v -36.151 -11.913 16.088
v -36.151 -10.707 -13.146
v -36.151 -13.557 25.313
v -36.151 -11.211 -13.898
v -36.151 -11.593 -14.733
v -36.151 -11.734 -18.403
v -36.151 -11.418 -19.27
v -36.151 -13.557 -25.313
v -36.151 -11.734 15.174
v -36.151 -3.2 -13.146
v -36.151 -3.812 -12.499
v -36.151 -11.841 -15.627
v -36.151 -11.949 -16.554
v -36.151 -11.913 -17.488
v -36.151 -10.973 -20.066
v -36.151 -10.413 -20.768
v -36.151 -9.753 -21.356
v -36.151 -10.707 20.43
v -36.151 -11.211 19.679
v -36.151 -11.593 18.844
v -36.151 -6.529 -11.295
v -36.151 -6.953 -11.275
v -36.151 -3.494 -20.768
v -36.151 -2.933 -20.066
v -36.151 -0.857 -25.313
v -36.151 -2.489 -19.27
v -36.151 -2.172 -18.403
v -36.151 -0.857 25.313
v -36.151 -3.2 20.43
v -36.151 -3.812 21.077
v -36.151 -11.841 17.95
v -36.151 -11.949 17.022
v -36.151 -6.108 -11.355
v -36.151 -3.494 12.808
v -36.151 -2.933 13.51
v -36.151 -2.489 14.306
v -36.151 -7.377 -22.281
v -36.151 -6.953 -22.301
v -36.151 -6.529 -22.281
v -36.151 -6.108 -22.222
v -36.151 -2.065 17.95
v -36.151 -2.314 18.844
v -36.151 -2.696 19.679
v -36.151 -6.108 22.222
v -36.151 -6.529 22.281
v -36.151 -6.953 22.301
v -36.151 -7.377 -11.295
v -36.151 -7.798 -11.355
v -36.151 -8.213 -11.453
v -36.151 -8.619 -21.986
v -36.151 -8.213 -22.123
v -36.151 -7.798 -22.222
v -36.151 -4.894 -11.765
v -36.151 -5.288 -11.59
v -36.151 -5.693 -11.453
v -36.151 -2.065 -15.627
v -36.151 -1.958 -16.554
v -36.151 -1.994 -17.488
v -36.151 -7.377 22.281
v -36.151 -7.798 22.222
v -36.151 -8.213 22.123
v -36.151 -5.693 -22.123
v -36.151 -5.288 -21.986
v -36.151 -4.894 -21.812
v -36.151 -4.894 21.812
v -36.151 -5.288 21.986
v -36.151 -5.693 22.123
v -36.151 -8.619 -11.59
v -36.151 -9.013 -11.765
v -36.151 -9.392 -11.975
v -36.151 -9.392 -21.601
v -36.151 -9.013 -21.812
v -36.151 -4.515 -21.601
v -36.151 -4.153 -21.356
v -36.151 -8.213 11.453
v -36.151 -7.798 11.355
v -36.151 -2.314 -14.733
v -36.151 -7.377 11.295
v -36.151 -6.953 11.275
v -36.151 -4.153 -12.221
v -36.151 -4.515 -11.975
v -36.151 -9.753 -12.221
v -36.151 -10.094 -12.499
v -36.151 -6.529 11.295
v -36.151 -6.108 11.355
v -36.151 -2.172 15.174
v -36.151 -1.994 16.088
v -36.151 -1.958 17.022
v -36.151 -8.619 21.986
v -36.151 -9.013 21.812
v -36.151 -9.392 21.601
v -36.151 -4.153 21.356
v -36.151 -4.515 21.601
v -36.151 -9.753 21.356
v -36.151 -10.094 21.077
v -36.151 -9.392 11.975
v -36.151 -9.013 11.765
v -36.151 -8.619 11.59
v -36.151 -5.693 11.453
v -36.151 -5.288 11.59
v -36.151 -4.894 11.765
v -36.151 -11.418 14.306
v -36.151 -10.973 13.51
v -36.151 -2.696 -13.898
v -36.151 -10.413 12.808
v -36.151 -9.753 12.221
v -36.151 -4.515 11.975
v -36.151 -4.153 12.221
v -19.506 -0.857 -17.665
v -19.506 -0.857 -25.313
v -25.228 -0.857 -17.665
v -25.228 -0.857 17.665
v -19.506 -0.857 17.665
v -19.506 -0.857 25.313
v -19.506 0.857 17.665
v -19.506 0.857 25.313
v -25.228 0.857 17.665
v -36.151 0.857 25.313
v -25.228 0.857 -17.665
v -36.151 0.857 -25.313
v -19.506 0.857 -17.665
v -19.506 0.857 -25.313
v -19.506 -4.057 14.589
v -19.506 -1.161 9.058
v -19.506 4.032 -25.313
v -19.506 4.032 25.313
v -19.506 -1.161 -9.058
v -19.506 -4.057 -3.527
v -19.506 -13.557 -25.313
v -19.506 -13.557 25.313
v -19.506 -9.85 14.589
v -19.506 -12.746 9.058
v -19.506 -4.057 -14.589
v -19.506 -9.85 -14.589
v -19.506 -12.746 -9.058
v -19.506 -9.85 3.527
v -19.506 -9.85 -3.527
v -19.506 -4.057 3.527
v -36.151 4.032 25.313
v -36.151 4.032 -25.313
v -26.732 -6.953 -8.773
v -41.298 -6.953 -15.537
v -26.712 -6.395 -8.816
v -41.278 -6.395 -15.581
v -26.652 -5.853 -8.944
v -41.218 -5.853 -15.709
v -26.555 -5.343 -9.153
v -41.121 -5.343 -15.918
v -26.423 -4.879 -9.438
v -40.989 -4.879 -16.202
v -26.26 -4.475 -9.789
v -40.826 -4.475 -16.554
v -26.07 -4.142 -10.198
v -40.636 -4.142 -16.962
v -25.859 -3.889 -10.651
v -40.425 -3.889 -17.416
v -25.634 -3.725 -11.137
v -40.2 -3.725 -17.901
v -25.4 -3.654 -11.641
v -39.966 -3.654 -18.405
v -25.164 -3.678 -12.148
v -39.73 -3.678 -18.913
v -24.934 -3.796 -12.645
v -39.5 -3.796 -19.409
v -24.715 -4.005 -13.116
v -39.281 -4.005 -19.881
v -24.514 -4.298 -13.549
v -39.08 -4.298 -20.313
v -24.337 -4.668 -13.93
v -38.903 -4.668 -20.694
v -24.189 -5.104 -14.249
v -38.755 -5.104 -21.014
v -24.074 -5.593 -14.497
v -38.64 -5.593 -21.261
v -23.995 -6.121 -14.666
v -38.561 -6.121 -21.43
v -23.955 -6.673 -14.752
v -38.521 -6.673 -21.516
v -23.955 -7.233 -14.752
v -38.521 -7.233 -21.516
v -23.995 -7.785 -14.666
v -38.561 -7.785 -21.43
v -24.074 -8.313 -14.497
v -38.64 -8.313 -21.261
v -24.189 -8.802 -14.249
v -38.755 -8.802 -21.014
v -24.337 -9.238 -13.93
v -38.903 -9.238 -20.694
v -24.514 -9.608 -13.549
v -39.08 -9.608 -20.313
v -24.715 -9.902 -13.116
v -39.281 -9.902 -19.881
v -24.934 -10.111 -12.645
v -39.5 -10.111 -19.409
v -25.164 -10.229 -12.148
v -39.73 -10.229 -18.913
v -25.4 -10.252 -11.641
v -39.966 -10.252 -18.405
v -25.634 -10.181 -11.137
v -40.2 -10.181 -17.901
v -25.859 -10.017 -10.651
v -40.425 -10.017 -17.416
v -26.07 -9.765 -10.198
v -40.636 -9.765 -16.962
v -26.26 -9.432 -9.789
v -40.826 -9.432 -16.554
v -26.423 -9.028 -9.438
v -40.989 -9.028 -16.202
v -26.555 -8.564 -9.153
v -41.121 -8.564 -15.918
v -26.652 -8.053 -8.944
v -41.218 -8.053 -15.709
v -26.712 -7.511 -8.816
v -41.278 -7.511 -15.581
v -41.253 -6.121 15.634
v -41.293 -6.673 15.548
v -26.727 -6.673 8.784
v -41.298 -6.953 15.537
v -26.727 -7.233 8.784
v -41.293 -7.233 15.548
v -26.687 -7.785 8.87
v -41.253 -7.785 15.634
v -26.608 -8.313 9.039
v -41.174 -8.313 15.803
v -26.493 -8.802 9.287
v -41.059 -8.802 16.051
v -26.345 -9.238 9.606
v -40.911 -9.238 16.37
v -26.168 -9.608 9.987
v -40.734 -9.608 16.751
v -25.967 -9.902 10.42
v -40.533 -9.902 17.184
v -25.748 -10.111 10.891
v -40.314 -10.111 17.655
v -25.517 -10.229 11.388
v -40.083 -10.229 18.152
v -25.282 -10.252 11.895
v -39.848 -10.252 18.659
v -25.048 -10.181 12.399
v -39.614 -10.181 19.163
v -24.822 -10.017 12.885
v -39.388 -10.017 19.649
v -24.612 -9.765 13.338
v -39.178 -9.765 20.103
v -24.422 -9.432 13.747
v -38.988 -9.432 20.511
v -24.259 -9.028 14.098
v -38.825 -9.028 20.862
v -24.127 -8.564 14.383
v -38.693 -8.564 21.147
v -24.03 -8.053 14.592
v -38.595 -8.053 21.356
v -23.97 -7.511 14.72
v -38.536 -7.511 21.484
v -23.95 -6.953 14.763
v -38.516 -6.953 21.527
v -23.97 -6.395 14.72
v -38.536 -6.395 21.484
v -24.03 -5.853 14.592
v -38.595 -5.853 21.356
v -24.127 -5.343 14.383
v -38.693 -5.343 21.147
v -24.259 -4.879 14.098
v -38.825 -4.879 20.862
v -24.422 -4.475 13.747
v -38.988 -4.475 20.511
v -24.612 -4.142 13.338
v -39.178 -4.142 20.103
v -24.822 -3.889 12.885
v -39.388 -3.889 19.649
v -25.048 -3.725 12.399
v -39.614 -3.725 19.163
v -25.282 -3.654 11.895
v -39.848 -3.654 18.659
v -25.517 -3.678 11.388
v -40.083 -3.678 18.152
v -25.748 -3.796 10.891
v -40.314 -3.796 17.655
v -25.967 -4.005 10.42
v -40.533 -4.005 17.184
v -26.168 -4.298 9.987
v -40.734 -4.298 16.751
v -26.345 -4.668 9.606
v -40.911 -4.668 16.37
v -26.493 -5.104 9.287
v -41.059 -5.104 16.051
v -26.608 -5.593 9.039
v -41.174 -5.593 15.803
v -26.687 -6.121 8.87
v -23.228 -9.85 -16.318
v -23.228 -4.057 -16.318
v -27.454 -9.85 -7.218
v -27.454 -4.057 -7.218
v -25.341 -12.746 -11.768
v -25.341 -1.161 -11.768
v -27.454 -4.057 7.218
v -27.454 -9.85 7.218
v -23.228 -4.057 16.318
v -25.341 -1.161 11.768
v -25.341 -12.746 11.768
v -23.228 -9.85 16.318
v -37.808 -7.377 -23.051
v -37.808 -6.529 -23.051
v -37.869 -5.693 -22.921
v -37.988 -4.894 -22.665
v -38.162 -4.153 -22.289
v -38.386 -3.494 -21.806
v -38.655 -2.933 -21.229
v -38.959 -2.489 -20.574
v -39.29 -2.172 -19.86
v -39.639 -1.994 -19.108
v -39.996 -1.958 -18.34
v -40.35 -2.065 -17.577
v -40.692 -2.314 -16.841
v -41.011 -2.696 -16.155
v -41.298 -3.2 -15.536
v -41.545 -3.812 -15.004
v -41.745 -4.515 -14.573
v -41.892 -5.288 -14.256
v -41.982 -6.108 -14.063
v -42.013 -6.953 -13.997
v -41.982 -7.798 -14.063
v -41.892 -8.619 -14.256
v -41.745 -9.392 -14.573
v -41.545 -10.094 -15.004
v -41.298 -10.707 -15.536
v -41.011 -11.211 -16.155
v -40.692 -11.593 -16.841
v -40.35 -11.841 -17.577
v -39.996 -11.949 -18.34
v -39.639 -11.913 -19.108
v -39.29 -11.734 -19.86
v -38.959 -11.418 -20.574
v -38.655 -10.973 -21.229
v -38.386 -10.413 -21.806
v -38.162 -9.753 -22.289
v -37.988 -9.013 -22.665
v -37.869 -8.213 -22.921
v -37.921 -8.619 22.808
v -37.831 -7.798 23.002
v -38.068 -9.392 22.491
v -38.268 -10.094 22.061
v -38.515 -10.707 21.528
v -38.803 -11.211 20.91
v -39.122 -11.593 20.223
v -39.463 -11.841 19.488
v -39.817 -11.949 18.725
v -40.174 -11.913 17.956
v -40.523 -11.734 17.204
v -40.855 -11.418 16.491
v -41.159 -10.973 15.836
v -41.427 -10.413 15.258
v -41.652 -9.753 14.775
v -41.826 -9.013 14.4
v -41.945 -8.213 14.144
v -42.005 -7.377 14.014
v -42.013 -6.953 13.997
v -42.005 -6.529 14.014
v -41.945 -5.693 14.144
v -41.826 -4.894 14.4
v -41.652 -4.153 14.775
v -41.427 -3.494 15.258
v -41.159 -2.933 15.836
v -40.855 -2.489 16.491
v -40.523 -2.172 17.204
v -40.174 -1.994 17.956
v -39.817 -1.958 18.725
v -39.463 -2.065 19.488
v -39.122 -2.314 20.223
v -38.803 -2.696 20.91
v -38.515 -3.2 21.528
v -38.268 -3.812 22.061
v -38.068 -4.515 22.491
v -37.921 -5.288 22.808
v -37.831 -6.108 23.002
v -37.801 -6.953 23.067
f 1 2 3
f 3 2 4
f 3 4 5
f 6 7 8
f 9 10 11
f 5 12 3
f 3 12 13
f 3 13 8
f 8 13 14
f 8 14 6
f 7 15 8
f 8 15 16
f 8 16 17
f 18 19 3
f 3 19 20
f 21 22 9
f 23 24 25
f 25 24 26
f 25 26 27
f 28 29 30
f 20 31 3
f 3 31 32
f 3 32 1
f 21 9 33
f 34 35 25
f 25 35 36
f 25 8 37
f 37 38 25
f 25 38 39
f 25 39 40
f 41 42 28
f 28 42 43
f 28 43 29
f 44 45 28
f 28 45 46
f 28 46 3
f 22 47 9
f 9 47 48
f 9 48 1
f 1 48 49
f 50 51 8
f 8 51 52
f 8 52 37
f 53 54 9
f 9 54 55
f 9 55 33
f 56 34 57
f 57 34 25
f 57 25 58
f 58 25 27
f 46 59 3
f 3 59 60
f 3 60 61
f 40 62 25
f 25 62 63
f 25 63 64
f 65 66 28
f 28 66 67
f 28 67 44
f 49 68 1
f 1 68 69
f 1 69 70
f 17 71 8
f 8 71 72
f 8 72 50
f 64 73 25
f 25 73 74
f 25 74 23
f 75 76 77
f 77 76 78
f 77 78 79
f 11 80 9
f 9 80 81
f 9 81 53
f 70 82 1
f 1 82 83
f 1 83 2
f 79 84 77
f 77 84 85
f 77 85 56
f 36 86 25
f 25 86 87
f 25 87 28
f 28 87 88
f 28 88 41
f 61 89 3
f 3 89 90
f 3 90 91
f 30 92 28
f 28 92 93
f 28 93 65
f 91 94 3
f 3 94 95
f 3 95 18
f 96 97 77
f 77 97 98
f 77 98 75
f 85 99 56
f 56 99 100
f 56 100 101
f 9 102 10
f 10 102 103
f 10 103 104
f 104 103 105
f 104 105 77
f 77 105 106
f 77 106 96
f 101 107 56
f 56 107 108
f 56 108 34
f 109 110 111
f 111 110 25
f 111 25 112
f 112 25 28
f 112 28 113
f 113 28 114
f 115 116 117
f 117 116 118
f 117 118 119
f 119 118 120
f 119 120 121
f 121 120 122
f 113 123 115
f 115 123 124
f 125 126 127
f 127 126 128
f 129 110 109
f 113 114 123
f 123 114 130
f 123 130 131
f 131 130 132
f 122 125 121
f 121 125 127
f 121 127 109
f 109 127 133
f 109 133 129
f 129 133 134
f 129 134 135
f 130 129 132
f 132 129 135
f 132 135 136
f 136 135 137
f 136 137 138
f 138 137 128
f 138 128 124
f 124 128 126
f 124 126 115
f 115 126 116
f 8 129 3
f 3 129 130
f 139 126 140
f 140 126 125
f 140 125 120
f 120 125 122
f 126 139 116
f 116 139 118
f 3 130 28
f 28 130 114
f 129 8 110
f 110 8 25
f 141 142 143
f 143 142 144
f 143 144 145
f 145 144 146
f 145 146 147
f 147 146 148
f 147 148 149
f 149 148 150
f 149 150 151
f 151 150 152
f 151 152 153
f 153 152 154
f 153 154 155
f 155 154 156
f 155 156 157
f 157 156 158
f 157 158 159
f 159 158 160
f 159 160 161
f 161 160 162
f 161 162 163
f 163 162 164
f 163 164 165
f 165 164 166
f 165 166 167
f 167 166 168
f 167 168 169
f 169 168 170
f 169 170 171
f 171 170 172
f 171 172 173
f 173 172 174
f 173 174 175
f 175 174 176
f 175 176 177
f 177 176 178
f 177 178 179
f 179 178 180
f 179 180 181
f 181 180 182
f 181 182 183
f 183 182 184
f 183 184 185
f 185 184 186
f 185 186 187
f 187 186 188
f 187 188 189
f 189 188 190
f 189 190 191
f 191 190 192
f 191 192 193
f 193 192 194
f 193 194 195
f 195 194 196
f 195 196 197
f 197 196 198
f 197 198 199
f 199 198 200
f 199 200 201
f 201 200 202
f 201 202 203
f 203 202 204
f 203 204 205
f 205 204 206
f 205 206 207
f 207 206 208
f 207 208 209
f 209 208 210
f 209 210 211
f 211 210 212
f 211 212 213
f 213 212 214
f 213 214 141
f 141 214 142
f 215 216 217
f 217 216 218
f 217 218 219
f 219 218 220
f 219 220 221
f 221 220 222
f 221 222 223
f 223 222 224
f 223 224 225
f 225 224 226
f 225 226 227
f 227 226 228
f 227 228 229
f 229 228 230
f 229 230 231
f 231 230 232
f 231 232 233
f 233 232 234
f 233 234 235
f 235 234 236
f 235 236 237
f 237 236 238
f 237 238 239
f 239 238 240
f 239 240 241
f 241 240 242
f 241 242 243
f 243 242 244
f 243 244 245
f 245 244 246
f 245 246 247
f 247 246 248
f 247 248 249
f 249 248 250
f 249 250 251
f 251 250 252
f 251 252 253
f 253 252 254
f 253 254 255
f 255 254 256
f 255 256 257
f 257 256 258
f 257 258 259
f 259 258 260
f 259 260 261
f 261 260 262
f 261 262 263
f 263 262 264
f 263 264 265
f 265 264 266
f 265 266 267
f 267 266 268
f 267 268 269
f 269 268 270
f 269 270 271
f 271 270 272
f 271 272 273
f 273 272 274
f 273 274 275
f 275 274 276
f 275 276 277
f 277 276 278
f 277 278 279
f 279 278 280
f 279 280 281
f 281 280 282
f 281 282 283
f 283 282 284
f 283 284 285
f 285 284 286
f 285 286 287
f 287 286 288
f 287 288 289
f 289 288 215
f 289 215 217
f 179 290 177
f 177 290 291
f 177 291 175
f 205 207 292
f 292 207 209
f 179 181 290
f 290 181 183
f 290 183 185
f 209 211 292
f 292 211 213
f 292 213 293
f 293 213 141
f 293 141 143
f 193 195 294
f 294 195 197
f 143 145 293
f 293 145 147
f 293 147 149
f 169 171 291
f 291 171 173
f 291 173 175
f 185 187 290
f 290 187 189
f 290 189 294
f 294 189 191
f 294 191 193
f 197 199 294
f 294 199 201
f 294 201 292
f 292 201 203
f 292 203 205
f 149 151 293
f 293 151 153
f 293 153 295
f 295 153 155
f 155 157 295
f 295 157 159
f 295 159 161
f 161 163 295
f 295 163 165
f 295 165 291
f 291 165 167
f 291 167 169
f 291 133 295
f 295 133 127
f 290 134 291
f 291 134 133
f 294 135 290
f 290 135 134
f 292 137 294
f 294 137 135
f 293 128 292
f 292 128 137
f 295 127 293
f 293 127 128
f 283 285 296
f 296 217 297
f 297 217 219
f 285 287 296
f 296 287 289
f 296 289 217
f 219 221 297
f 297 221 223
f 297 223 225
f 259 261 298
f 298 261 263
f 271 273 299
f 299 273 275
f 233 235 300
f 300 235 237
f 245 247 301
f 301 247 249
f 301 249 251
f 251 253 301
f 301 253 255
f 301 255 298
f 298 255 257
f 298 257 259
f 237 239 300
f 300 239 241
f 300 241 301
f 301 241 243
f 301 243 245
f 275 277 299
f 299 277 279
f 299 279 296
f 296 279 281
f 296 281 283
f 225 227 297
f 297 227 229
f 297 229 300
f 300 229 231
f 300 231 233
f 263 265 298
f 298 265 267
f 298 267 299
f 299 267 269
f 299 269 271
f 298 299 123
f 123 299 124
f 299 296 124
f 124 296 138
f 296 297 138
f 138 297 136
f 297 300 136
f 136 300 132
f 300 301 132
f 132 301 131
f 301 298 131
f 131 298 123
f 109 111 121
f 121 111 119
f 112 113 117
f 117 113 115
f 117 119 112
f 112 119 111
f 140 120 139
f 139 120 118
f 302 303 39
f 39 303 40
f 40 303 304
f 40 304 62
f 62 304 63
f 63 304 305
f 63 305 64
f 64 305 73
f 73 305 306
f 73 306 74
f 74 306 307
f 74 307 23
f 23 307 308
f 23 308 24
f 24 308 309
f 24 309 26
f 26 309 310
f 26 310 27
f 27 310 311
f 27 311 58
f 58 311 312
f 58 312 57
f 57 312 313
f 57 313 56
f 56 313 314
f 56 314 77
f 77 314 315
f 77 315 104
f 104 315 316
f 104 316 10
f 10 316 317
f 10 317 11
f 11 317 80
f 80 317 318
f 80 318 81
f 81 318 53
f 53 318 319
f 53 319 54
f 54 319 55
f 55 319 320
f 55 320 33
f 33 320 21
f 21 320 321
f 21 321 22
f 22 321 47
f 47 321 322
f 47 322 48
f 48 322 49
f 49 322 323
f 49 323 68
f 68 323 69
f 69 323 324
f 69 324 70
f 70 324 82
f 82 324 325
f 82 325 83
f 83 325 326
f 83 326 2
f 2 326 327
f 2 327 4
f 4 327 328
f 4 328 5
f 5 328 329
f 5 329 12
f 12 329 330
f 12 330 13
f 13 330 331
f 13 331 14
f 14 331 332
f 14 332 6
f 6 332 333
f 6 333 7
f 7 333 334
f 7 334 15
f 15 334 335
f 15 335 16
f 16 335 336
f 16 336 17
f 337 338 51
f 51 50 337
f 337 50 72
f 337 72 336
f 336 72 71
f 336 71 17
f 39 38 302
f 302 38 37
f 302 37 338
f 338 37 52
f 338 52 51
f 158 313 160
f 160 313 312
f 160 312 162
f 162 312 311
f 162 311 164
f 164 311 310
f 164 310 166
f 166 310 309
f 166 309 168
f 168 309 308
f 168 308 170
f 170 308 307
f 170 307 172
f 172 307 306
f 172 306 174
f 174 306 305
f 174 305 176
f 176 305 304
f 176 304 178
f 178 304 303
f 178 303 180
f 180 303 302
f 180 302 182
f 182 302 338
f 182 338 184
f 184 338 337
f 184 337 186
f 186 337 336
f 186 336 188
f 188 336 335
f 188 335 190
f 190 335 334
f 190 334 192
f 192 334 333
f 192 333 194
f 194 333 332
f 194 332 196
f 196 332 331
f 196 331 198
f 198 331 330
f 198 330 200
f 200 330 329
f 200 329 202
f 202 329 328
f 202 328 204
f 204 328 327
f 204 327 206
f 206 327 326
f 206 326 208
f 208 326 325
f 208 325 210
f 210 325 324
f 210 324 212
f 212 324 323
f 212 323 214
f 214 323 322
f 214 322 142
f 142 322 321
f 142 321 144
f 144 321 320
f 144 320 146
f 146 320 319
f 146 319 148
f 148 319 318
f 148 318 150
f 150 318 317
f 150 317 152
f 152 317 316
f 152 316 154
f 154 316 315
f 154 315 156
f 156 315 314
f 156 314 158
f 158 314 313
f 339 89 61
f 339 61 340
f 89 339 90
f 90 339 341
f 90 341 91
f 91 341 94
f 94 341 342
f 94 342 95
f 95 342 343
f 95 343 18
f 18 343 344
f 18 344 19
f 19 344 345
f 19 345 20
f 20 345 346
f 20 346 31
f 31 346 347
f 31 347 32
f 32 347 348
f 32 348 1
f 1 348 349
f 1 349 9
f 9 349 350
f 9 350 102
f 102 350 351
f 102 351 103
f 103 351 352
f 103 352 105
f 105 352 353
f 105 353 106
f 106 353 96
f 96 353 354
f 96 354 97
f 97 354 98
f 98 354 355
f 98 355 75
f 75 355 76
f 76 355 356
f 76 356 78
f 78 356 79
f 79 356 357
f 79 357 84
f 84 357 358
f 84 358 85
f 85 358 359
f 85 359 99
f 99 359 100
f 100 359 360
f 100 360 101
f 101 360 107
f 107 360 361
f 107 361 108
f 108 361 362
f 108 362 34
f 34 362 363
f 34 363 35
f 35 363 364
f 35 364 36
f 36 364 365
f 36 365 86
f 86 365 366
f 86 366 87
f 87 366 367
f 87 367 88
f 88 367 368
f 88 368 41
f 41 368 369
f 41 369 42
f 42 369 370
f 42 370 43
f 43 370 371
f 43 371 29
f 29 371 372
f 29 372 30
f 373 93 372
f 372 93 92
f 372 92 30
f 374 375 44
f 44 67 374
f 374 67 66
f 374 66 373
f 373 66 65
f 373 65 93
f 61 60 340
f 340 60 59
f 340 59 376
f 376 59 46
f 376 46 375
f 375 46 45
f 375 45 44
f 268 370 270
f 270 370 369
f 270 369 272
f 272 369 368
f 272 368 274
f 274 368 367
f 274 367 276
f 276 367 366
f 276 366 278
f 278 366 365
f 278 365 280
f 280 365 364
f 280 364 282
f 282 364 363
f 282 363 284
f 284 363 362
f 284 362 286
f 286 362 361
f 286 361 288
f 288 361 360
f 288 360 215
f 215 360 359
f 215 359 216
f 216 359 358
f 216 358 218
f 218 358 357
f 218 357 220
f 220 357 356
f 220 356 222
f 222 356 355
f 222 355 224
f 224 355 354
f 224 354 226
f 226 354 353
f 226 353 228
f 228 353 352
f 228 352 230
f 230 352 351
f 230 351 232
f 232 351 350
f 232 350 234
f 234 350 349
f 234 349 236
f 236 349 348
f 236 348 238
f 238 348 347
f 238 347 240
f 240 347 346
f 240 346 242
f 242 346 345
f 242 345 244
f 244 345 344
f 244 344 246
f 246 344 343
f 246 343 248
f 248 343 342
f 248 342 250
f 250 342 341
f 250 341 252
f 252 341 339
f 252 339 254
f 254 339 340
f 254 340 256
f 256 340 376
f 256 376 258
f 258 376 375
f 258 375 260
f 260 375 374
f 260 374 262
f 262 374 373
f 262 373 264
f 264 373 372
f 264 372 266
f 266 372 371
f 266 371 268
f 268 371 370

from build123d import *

# Parameters (mm, degrees)
REVOLVE1_ANGLE       = 70
BOSS_EXTRUDE1_START  = -17.5895
BOSS_EXTRUDE1_DEPTH  = 17.5895
BOSS_EXTRUDE2_DEPTH  = 3.175
BOSS_EXTRUDE3_DEPTH  = 12.7
CUT_SWEEP1_PROFILE_R = 3.302
CUT_EXTRUDE7_DEPTH   = 27.94
BOSS_EXTRUDE4_REACH  = 54.438
CUT_EXTRUDE8_DEPTH   = 1.7145
CUT_EXTRUDE9_DEPTH   = 54.83153704
BOSS_EXTRUDE5_REACH  = 52.224
SKETCH45_R           = 5
SKETCH45_R_2         = 3.302


with BuildPart() as part:
    # Sketch3 → Revolve1 (revolve, symmetric)
    with BuildSketch(Plane.XY) as revolve1_sk:
        Polygon((-44.1325, 4.03225), (-23.8125, 4.03225), (-23.8125, -13.55725), (-44.1325, -13.55725), (-44.1325, -0.85725), (-30.7975, -0.85725), (-30.7975, 0.85725), (-44.1325, 0.85725), align=None)
    revolve(axis=Axis((0, -1086.549659172, 0), (0, 1, 0)), revolution_arc=REVOLVE1_ANGLE / 2)
    revolve(revolve1_sk.sketch, axis=Axis((0, -1086.549659172, 0), (0, -1, 0)), revolution_arc=REVOLVE1_ANGLE / 2)

    # Sketch10 → Boss-Extrude1 (add)
    with BuildSketch(Plane(origin=(0, 4.03225, 0), x_dir=(1, 0, 0), z_dir=(0, 1, 0)).offset(BOSS_EXTRUDE1_START)):
        with BuildLine():
            Line((-19.506058055, 13.658288891), (-19.506058055, -13.658288891))
            ThreePointArc((-19.506058055, -13.658288891), (-23.8125, 0), (-19.506058055, 13.658288891))
        make_face()
    extrude(amount=BOSS_EXTRUDE1_DEPTH)

    # Sketch11 → Boss-Extrude2 (add)
    with BuildSketch(Plane(origin=(0, 4.03225, 0), x_dir=(1, 0, 0), z_dir=(0, 1, 0))):
        Polygon((-36.151227595, 25.313362077), (-19.506058055, 25.313362077), (-19.506058055, 13.658288891), align=None)
        Polygon((-36.151227595, -25.313362077), (-19.506058055, -25.313362077), (-19.506058055, -13.658288891), align=None)
    extrude(amount=-BOSS_EXTRUDE2_DEPTH)

    # Sketch12 → Boss-Extrude3 (add)
    with BuildSketch(Plane.XZ.offset(13.55725)):
        Polygon((-36.151227595, 25.313362077), (-19.506058055, 25.313362077), (-19.506058055, 13.658288891), align=None)
        Polygon((-36.151227595, -25.313362077), (-19.506058055, -13.658288891), (-19.506058055, -25.313362077), align=None)
    extrude(amount=-BOSS_EXTRUDE3_DEPTH)

    # Cut-Sweep1: sweep along a path in Sketch14
    with BuildLine(Plane(origin=(0, -6.95325, 0), x_dir=(-1, 0, 0), z_dir=(0, -1, 0))) as cut_sweep1_path:
        Line((9.675589129, 4.493239256), (40.02699074, 18.588102876))
    # Cut-Sweep1 profile (on start of the path) → Cut-Sweep1 (sweep, cut)
    with BuildSketch(Plane(origin=(-9.675589129, -6.95325, -4.493239256), x_dir=(0.421188531725906, 0, -0.9069731091617742), z_dir=(-0.9069731091617742, -3.1111435997184875e-15, -0.421188531725906))):
        Circle(CUT_SWEEP1_PROFILE_R)
    cut_sweep1 = sweep(path=cut_sweep1_path.line, mode=Mode.SUBTRACT)

    # Mirror1: Cut-Sweep1 across plane
    add(cut_sweep1.mirror(Plane.XY), mode=Mode.SUBTRACT)

    # Sketch37 → Cut-Extrude7 (cut)
    with BuildSketch(Plane(origin=(0, 0, 0), x_dir=(-0.42118853172590587, -1.4445522614505264e-15, 0.9069731091617743), z_dir=(-0.9069731091617742, -3.103462646485123e-15, -0.4211885317259058))):
        Polygon((-5.0165, -4.056972375), (-5.0165, -9.849527625), (0, -12.745805251), (5.0165, -9.849527625), (5.0165, -4.056972375), (0, -1.160694749), align=None)
    cut_extrude7 = extrude(amount=CUT_EXTRUDE7_DEPTH, mode=Mode.SUBTRACT)

    # Mirror2: Cut-Extrude7 across plane
    add(cut_extrude7.mirror(Plane.XY), mode=Mode.SUBTRACT)

    # Sketch38 → Boss-Extrude4 (add, up to next)
    with BuildSketch(Plane(origin=(0, -0.85725, 0), x_dir=(1, 0, 0), z_dir=(0, 1, 0)), mode=Mode.PRIVATE) as boss_extrude4_sk1:
        Polygon((-25.227835084, 17.664720299), (-19.506058055, 17.664720299), (-19.506058055, 13.658288891), align=None)
    boss_extrude4_tool1 = extrude(boss_extrude4_sk1.sketch, amount=BOSS_EXTRUDE4_REACH, mode=Mode.PRIVATE) - part.part
    # Sketch38 → Boss-Extrude4 (add, up to next)
    with BuildSketch(Plane(origin=(0, -0.85725, 0), x_dir=(1, 0, 0), z_dir=(0, 1, 0)), mode=Mode.PRIVATE) as boss_extrude4_sk2:
        Polygon((-25.227835084, -17.664720299), (-19.506058055, -13.658288891), (-19.506058055, -17.664720299), align=None)
    boss_extrude4_tool2 = extrude(boss_extrude4_sk2.sketch, amount=BOSS_EXTRUDE4_REACH, mode=Mode.PRIVATE) - part.part
    add(boss_extrude4_tool1.solids().sort_by_distance((-21.413317, -0.85725, -16.329243))[0])
    add(boss_extrude4_tool2.solids().sort_by_distance((-21.413317, -0.85725, 16.329243))[0])

    # Sketch39 → Cut-Extrude8 (cut)
    with BuildSketch(Plane.XZ.offset(-0.85725)):
        with BuildLine():
            Line((-25.227835084, -17.664720299), (-25.227835084, 17.664720299))
            ThreePointArc((-25.227835084, 17.664720299), (-30.7975, 0), (-25.227835084, -17.664720299))
        make_face()
    extrude(amount=CUT_EXTRUDE8_DEPTH, mode=Mode.SUBTRACT)

    # Sketch44 → Cut-Extrude9 (cut, through all)
    with BuildSketch(Plane.XZ.offset(13.55725)):
        with BuildLine():
            Line((-36.151227595, 25.313362077), (-36.151227595, -25.313362077))
            ThreePointArc((-36.151227595, -25.313362077), (-44.1325, 0), (-36.151227595, 25.313362077))
        make_face()
    extrude(amount=-CUT_EXTRUDE9_DEPTH, mode=Mode.SUBTRACT)

    # Boss-Extrude5: up to this plane
    boss_extrude5_end = Plane(origin=(-36.151227595, 4.03225, 25.313362077), z_dir=(1, 0, 0))
    # Sketch45 → Boss-Extrude5 (add, up to the surface)
    with BuildSketch(Plane(origin=(-39.906816803, 0, -18.532295396), x_dir=(-0.42118853172590587, -1.4445522614505264e-15, 0.9069731091617743), z_dir=(-0.9069731091617742, -3.103462646485123e-15, -0.4211885317259058)), mode=Mode.PRIVATE) as boss_extrude5_sk1:
        with Locations((0, -6.95325)):
            Circle(SKETCH45_R)
        with Locations((0, -6.95325)):
            Circle(SKETCH45_R_2, mode=Mode.SUBTRACT)
    boss_extrude5_tool1 = split(extrude(boss_extrude5_sk1.sketch, amount=-BOSS_EXTRUDE5_REACH, mode=Mode.PRIVATE), bisect_by=boss_extrude5_end, keep=Keep.BOTH, mode=Mode.PRIVATE)
    boss_extrude5 = boss_extrude5_tool1.solids().sort_by_distance((-37.860439, -6.95325, -22.938896))[0]
    add(boss_extrude5)

    # Mirror3: Boss-Extrude5 across plane
    add(boss_extrude5.mirror(Plane.XY))


solid = part.part
